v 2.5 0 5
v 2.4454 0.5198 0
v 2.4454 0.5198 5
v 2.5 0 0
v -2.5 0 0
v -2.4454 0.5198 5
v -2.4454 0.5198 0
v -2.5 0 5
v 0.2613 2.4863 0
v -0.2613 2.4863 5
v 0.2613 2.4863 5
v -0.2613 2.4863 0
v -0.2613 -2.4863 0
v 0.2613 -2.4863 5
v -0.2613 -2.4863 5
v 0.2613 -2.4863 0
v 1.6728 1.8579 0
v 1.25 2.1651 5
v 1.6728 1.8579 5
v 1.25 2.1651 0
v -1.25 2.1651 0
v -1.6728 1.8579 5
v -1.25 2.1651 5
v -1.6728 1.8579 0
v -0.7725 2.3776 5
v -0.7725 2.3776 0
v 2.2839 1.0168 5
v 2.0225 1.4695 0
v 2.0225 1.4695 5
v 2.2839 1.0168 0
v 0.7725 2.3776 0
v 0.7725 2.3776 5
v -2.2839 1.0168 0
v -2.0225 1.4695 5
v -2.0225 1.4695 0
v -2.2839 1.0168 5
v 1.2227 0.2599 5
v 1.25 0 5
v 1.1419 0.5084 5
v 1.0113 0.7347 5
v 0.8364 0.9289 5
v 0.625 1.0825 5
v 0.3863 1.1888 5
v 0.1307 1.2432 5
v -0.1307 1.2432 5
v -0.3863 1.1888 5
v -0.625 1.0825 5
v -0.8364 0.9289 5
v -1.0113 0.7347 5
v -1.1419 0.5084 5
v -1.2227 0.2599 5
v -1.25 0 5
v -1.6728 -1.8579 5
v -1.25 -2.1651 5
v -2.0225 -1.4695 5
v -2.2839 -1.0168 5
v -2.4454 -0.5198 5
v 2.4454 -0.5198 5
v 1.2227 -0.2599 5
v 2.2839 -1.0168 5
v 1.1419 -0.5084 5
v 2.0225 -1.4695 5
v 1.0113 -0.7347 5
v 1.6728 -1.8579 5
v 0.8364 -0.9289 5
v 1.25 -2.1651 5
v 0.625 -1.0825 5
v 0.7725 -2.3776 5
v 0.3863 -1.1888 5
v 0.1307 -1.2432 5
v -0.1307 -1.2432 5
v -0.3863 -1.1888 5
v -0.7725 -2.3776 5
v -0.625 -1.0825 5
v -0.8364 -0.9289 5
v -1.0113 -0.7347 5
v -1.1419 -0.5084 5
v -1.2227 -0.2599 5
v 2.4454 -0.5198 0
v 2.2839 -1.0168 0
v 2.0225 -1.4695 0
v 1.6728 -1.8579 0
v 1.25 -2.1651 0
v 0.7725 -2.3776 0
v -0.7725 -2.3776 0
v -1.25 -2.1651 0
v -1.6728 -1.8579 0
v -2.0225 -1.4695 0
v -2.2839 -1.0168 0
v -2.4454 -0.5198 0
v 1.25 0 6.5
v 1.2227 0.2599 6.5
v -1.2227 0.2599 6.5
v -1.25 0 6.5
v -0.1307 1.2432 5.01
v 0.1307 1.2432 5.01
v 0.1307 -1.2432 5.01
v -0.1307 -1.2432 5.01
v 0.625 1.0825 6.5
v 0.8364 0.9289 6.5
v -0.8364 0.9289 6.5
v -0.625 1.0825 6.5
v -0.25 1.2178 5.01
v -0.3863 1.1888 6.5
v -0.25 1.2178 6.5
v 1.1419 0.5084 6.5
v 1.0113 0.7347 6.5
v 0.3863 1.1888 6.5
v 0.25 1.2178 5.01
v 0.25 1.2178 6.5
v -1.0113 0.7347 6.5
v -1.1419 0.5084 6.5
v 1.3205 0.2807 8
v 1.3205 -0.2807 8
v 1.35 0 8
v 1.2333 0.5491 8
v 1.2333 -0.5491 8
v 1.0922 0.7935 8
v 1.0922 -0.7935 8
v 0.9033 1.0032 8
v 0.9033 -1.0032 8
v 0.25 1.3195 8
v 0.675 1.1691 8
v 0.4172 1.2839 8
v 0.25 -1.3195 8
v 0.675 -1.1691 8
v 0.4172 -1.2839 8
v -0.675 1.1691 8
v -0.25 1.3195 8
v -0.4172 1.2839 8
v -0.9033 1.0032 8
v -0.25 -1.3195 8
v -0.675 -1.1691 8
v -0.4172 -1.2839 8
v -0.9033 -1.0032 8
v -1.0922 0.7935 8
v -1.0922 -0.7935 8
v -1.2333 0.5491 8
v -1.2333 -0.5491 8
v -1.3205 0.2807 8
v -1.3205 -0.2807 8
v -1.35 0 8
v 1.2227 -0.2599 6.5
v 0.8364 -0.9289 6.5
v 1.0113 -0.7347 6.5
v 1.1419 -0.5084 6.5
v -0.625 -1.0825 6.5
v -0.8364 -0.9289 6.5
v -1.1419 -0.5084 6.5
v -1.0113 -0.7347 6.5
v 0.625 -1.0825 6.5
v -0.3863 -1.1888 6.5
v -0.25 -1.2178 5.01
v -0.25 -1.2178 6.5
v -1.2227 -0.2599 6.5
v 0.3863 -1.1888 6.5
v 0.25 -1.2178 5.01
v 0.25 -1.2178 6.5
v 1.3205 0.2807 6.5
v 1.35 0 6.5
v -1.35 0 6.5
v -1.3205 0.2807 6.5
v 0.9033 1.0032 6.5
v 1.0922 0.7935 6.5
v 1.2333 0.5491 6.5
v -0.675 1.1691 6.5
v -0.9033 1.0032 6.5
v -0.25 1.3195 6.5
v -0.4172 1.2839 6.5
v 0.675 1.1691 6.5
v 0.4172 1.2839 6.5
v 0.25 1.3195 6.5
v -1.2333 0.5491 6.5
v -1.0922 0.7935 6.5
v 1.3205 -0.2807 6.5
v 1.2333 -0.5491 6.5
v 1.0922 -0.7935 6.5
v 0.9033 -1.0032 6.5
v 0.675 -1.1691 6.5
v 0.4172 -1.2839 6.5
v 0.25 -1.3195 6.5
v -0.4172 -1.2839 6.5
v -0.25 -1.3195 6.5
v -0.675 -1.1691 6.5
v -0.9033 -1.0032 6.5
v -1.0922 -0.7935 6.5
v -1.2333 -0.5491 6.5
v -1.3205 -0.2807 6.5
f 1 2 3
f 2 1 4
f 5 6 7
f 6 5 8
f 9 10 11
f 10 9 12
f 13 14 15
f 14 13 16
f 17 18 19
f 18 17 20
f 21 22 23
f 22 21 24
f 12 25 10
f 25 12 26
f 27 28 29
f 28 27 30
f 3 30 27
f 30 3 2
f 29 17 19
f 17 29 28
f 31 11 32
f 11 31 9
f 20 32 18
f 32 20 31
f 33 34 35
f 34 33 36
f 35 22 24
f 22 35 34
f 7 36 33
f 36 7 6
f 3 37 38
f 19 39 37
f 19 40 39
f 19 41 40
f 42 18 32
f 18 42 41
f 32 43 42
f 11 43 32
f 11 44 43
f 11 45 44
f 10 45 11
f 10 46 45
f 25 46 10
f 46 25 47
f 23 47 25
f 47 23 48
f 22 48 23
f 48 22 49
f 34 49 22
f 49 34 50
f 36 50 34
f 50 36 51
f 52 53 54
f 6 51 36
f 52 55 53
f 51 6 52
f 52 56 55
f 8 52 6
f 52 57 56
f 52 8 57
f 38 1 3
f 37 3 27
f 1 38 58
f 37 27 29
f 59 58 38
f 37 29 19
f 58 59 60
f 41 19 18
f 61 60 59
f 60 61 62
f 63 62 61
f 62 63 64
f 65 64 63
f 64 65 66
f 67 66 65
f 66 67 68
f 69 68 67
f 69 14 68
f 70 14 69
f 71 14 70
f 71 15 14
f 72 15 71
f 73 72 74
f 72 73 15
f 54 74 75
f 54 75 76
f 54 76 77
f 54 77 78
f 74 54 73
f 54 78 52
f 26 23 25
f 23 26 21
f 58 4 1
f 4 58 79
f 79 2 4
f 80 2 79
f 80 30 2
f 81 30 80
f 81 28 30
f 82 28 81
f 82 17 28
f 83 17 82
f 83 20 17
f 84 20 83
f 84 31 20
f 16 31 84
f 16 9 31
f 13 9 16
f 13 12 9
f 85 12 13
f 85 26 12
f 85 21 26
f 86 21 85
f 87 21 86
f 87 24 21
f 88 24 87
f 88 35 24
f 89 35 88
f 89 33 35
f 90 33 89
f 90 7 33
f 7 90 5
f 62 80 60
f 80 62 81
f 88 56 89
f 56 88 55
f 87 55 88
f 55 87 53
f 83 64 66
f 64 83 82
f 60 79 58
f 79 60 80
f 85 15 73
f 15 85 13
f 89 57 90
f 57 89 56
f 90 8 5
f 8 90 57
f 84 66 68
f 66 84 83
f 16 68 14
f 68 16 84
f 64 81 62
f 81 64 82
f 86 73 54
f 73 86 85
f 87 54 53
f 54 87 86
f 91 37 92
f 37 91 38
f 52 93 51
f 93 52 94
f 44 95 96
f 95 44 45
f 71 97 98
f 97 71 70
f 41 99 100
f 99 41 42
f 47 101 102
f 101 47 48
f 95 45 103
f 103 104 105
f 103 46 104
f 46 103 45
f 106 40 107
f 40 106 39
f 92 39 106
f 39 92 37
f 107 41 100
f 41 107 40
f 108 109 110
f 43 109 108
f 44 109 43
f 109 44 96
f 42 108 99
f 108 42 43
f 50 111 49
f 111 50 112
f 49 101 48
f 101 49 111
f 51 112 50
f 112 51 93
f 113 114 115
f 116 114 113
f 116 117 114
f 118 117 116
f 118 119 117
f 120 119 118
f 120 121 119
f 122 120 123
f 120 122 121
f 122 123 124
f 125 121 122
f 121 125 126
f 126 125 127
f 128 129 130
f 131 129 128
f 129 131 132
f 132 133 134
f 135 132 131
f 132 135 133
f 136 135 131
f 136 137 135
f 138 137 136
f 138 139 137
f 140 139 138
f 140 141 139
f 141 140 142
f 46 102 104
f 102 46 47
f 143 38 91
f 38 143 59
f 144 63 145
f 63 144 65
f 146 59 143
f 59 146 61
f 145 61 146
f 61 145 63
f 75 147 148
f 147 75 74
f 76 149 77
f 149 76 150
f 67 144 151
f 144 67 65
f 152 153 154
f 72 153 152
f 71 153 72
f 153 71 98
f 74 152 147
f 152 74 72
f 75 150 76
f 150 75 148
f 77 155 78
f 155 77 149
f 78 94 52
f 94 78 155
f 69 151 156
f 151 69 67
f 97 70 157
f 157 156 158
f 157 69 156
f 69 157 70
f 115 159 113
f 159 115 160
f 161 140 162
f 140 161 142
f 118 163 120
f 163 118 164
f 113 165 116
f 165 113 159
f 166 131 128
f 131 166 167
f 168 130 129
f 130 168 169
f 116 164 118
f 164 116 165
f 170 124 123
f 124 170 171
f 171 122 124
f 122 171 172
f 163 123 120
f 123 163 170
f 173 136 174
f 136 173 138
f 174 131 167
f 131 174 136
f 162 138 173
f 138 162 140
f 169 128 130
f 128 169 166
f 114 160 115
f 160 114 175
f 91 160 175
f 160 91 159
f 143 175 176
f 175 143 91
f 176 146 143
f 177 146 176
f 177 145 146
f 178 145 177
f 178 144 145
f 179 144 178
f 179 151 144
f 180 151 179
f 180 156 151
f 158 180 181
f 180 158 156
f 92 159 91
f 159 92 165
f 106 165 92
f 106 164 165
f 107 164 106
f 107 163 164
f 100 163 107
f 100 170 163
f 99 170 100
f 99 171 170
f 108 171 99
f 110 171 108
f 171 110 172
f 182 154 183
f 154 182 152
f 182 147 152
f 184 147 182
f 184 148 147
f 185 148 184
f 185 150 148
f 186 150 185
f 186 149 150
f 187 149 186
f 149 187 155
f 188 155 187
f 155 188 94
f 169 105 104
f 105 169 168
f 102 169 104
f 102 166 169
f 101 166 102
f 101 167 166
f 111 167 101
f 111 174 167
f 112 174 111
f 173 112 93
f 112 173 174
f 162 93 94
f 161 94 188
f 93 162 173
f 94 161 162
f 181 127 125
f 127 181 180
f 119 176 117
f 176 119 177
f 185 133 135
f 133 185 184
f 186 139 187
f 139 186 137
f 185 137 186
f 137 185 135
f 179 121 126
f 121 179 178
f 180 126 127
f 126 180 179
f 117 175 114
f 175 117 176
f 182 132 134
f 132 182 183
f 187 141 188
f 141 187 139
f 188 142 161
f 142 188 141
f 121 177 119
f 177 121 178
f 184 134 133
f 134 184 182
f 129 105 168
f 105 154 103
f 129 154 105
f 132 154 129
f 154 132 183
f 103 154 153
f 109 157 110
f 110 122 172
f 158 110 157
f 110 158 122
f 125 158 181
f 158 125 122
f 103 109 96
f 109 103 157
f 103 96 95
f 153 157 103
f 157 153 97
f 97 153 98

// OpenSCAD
eps     = 0.01;
enhance = 0.3;  // fuer Innenloecher
segment = 0.2;  // für $fs

difference()
{
    union()
    {
        // unten dick
        cylinder( d = 5, h = 5, $fs = segment);
        // Mittelteil
        cylinder( d = 2.8 - enhance, h = 8, $fs = segment);
        // oben etwas dicker
        translate([ 0, 0, 6.5]) cylinder( d = 0.2 + 2.8 - enhance, h = 8 - 5 - 1.5, $fs = segment);
    }
    translate([ 0, 0, 5 / 2 + 5 +eps ]) cube( [ 0.5, 2.8 + 0.5, 5], center = true);
}
